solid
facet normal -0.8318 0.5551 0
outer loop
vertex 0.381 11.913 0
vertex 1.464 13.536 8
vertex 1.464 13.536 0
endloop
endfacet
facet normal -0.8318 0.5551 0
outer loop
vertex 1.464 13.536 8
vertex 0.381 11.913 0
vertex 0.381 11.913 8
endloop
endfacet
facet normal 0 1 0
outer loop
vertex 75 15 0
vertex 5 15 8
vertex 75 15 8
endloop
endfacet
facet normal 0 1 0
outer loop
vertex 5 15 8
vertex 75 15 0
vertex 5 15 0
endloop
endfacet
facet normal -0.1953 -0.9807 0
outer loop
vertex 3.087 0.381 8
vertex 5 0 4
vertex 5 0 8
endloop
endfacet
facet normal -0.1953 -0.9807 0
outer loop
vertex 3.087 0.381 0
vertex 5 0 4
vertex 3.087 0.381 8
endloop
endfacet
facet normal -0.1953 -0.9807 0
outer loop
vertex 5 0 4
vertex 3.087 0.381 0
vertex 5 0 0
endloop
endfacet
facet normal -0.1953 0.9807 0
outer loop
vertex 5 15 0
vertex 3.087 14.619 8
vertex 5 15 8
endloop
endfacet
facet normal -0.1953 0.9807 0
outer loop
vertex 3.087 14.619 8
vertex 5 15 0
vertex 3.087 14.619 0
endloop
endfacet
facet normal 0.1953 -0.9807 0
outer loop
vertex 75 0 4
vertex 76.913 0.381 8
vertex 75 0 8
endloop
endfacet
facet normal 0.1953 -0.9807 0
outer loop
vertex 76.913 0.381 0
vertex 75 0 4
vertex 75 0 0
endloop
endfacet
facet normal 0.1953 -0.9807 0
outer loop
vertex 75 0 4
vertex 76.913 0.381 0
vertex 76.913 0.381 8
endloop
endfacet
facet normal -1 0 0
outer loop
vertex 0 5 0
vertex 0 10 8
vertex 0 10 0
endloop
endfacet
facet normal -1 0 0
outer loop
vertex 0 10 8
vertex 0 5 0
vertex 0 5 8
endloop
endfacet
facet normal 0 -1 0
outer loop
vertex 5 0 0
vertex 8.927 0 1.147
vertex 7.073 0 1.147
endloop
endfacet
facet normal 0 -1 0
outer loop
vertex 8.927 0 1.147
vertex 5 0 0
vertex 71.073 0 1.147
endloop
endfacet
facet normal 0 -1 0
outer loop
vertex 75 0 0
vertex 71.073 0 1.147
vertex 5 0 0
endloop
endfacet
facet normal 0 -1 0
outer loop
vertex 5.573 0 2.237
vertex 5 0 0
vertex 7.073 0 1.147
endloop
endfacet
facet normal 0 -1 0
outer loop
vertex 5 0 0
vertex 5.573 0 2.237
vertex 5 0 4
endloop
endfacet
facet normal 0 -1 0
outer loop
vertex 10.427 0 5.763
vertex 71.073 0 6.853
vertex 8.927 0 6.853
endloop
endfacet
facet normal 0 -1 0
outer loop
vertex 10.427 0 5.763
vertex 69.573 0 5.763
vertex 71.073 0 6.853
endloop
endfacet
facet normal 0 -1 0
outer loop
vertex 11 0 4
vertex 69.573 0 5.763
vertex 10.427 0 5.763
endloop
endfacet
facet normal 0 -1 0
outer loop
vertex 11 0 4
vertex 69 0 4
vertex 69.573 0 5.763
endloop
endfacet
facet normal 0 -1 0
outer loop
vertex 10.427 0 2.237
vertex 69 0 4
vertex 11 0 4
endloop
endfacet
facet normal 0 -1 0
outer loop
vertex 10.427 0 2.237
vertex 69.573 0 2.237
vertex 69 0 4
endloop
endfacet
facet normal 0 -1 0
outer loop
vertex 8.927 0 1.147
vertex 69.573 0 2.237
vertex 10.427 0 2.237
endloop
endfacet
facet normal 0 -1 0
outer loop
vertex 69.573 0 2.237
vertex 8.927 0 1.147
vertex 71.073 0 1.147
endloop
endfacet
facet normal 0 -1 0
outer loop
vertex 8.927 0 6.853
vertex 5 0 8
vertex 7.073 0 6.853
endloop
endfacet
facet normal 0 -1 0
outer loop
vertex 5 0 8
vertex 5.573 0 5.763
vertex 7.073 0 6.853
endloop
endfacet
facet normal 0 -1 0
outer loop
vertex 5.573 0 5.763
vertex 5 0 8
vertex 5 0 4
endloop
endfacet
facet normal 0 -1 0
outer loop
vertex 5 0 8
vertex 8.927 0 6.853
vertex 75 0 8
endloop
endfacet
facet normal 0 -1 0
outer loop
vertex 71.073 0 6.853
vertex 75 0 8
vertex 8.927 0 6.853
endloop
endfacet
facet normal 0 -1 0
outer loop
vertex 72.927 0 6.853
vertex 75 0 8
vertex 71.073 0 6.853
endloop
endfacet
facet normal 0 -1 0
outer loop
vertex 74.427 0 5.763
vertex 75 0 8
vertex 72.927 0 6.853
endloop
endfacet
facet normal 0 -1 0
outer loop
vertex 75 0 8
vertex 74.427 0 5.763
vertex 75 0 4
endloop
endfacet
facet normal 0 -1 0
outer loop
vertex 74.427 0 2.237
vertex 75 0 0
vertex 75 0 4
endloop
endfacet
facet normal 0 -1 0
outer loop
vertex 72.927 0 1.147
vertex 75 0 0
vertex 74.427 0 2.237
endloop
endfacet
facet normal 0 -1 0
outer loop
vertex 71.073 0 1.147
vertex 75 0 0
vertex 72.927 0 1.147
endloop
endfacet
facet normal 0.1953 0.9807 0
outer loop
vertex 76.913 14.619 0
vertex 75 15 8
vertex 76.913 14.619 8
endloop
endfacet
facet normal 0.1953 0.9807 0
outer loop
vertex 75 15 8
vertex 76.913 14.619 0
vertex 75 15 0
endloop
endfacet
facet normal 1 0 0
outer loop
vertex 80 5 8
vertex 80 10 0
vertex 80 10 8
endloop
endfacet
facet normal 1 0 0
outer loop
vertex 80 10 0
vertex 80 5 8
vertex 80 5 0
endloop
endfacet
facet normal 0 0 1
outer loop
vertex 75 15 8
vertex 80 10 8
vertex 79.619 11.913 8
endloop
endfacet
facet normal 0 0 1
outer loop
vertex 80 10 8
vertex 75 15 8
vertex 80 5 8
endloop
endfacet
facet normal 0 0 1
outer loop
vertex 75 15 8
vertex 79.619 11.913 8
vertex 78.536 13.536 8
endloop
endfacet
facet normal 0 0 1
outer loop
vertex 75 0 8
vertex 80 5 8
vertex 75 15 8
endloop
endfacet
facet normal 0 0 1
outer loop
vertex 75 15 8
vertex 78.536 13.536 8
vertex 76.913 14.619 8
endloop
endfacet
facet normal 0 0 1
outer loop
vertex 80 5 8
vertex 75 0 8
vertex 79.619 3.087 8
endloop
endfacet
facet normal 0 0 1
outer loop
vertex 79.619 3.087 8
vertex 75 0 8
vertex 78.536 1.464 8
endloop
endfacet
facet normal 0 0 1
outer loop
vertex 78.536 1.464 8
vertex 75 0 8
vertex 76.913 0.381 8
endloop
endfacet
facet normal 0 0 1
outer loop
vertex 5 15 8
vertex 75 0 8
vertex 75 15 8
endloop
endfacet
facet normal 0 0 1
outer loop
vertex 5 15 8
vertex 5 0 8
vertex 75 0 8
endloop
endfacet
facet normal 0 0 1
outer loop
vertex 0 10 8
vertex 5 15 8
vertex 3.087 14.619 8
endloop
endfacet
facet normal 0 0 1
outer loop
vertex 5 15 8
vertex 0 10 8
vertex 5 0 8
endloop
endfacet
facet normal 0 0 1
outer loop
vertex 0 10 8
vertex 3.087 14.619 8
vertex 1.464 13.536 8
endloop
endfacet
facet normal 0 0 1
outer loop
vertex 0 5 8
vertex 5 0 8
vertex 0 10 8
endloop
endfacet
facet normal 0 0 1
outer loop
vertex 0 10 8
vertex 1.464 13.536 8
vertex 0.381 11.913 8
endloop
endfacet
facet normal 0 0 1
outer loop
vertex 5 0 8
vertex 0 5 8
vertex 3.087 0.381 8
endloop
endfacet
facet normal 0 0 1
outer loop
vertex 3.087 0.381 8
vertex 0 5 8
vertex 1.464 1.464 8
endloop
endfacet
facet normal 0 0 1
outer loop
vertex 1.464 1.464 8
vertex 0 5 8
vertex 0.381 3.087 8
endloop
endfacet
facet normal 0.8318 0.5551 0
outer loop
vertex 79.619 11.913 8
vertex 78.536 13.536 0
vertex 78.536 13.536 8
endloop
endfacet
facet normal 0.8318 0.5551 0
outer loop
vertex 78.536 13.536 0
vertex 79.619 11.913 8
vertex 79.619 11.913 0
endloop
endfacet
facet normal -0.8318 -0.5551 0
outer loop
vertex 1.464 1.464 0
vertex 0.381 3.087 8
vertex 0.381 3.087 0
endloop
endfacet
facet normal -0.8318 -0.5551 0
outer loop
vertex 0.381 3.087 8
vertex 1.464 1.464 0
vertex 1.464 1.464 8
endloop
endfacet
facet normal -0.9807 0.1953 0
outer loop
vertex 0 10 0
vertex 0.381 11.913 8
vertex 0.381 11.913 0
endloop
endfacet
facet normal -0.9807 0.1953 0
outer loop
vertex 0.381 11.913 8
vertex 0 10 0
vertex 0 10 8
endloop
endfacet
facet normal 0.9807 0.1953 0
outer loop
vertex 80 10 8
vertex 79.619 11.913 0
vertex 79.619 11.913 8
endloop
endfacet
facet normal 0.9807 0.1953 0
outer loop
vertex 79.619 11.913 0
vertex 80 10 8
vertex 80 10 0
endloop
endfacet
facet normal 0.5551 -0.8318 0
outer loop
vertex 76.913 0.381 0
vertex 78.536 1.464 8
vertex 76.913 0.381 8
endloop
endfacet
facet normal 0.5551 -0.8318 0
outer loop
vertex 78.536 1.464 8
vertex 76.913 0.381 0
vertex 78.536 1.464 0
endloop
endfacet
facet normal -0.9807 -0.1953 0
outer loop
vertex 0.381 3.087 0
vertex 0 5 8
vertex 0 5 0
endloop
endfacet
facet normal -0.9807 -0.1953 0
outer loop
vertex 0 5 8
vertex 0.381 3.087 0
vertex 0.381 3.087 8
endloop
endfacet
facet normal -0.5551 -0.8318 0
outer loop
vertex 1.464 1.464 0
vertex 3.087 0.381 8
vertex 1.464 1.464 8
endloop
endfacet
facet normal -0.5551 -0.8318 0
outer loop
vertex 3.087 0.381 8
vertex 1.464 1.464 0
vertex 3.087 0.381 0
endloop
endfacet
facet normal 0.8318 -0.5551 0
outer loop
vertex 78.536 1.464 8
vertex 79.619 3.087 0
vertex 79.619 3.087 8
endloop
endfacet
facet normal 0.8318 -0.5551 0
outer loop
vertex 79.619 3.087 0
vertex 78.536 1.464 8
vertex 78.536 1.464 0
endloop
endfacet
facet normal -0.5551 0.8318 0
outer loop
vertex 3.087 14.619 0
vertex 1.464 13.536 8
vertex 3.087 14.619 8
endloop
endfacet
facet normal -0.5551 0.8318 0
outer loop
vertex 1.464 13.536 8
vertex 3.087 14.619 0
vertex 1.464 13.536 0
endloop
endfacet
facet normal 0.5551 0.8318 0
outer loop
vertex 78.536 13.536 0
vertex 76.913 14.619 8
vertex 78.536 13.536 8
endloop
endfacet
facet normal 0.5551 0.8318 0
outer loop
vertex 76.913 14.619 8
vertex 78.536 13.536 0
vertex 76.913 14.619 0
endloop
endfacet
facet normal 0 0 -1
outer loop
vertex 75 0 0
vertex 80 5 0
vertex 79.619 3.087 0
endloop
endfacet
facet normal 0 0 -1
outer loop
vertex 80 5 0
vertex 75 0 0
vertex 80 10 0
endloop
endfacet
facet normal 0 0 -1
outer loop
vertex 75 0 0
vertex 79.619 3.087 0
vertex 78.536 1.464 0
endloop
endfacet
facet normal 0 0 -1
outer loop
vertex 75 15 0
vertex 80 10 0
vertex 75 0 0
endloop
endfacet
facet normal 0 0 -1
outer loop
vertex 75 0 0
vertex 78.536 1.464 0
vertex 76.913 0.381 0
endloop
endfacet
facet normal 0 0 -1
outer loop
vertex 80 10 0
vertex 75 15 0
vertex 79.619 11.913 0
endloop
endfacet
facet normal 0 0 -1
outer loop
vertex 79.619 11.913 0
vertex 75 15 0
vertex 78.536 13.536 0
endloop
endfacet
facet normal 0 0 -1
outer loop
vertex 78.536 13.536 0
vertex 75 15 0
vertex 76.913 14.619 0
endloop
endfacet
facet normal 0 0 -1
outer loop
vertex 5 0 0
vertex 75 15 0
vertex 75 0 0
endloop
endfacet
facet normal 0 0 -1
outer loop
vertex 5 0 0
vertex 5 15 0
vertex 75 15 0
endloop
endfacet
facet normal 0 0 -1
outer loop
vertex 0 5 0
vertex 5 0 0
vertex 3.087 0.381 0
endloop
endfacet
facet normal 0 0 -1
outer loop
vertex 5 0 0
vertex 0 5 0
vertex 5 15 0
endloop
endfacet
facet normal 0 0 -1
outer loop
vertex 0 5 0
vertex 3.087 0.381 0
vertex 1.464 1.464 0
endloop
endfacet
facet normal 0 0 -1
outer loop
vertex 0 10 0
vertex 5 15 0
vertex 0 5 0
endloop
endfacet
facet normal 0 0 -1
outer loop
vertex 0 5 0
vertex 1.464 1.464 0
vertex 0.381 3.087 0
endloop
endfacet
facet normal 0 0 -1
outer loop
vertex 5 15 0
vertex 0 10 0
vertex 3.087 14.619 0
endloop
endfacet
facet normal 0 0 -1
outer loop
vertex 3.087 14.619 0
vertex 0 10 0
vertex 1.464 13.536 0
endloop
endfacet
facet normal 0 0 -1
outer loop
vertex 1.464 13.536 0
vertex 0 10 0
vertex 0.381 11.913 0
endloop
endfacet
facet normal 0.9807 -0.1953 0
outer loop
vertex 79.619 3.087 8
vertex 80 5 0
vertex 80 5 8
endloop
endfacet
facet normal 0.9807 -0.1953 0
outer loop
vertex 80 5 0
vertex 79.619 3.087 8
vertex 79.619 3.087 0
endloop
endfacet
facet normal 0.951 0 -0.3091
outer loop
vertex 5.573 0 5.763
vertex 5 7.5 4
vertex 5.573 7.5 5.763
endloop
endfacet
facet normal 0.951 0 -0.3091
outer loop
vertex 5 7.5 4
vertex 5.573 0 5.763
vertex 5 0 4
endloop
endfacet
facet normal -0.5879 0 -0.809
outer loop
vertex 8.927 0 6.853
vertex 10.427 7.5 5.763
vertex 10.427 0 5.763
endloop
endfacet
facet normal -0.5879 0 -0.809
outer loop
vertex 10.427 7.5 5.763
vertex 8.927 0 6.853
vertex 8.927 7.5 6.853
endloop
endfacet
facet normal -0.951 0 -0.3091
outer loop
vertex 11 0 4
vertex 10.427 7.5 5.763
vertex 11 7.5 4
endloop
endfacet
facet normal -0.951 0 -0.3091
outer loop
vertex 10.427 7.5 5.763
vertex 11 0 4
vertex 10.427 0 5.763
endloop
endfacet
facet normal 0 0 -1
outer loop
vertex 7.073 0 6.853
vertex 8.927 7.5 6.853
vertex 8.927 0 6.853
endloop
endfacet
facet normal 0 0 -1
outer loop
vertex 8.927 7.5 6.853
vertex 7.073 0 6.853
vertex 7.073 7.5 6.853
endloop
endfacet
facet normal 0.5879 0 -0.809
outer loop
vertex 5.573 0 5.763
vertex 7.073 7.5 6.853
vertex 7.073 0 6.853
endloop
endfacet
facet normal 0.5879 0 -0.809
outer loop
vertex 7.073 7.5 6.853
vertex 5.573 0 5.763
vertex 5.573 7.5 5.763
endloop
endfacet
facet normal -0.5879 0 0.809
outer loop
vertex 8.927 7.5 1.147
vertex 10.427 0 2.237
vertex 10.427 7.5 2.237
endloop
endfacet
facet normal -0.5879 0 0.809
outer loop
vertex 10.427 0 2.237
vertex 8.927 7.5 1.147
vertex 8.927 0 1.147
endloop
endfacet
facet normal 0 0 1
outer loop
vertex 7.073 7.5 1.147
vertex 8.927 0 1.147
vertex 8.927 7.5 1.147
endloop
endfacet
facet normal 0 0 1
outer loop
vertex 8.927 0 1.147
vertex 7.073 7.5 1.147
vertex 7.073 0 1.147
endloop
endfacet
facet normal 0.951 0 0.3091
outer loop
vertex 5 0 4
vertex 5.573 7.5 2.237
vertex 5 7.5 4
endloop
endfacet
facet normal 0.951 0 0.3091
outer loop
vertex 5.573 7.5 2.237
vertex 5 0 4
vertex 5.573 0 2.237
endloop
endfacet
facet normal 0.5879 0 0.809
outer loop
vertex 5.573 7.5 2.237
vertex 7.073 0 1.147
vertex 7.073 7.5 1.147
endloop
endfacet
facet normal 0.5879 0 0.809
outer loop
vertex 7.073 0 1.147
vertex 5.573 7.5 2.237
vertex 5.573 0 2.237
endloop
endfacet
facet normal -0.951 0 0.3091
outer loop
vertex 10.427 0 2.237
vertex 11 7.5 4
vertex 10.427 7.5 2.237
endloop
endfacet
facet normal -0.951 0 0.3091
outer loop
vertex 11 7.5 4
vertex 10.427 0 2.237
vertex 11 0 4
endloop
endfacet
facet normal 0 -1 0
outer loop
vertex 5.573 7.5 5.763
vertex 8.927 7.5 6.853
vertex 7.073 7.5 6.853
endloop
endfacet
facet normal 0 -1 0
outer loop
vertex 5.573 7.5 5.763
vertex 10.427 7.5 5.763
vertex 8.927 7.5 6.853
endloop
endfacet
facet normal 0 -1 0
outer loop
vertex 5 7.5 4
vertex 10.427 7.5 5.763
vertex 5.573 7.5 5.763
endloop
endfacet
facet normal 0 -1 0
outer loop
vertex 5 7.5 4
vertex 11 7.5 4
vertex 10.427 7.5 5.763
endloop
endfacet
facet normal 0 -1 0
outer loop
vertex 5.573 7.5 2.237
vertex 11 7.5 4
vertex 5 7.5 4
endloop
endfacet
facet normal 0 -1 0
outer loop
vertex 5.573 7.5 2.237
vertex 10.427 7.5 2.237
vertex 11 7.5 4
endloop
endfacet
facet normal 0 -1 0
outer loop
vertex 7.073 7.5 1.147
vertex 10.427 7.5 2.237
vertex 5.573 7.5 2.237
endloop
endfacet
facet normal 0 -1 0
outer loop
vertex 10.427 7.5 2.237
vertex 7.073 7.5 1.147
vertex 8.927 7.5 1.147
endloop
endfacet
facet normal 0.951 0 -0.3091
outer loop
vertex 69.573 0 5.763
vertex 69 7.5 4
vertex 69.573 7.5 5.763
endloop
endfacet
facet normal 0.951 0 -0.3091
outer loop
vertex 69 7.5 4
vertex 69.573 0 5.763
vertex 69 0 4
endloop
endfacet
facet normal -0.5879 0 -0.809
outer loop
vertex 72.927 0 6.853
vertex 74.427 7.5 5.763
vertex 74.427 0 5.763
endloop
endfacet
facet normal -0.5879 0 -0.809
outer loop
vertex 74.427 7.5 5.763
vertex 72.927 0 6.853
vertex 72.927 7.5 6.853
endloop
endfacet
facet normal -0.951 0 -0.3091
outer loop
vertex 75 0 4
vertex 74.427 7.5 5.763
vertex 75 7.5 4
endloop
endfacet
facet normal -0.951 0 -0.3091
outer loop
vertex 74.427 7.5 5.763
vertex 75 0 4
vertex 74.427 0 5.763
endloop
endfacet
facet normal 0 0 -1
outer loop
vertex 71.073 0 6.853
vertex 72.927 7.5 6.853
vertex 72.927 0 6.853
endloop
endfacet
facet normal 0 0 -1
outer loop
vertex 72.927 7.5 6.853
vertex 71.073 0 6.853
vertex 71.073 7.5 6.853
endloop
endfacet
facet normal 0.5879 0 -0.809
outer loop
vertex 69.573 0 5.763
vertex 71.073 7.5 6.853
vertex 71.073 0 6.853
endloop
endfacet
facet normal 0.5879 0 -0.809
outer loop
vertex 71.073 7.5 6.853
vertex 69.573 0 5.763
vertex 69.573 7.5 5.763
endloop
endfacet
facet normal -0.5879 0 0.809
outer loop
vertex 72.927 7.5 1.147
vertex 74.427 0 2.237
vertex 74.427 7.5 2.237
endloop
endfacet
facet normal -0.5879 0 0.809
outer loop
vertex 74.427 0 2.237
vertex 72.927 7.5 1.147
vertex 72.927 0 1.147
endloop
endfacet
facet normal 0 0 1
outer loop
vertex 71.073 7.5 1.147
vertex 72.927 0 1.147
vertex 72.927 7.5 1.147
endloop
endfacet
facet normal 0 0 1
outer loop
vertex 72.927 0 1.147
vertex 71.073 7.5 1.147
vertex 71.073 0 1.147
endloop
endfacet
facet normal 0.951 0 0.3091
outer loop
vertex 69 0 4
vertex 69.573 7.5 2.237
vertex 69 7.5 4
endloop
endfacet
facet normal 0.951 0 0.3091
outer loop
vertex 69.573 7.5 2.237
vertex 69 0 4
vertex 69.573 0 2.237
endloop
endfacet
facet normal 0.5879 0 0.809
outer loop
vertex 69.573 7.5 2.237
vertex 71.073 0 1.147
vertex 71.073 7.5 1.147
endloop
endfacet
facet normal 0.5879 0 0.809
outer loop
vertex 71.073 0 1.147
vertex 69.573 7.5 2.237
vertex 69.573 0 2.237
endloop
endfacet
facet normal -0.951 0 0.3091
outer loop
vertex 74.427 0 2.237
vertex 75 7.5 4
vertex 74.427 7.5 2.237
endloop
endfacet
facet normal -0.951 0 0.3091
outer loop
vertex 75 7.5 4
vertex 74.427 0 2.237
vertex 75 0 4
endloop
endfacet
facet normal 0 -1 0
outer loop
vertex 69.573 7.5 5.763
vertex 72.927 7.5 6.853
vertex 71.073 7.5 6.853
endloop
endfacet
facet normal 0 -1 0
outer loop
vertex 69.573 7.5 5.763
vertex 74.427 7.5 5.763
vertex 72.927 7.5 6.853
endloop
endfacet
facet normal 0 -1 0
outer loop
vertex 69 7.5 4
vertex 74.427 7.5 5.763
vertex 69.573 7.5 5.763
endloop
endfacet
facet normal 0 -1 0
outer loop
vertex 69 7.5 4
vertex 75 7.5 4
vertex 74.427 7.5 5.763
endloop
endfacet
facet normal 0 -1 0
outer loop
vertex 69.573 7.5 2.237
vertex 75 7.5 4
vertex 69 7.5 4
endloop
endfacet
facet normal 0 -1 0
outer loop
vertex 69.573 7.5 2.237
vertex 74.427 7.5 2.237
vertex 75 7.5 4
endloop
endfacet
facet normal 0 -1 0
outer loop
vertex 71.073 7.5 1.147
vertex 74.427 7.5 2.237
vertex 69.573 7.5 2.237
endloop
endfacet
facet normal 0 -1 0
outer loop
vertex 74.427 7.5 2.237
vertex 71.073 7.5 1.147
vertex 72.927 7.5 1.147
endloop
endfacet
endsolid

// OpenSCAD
// Parameters for the rectangular bar
length = 80; // Adjusted length to increase elongation
width = 15;  // Adjusted width to reduce thickness
height = 8;  // Adjusted height to reduce thickness
corner_radius = 5; // Radius for rounded edges remains the same
hole_radius = 3; // Radius of the through-holes remains the same
hole_offset = 8; // Adjusted offset to align the through-holes correctly

// Main module
module rectangular_bar() {
    // Create the rounded rectangular bar
    difference() {
        // Rounded rectangular bar
        hull() {
            translate([corner_radius, corner_radius, 0])
                cylinder(r=corner_radius, h=height);
            translate([length - corner_radius, corner_radius, 0])
                cylinder(r=corner_radius, h=height);
            translate([corner_radius, width - corner_radius, 0])
                cylinder(r=corner_radius, h=height);
            translate([length - corner_radius, width - corner_radius, 0])
                cylinder(r=corner_radius, h=height);
        }
        
        // Through-holes
        translate([hole_offset, width / 2, height / 2])
            rotate([90, 0, 0])
            cylinder(r=hole_radius, h=length);
        translate([length - hole_offset, width / 2, height / 2])
            rotate([90, 0, 0])
            cylinder(r=hole_radius, h=length);
    }
}

// Render the rectangular bar
rectangular_bar();
